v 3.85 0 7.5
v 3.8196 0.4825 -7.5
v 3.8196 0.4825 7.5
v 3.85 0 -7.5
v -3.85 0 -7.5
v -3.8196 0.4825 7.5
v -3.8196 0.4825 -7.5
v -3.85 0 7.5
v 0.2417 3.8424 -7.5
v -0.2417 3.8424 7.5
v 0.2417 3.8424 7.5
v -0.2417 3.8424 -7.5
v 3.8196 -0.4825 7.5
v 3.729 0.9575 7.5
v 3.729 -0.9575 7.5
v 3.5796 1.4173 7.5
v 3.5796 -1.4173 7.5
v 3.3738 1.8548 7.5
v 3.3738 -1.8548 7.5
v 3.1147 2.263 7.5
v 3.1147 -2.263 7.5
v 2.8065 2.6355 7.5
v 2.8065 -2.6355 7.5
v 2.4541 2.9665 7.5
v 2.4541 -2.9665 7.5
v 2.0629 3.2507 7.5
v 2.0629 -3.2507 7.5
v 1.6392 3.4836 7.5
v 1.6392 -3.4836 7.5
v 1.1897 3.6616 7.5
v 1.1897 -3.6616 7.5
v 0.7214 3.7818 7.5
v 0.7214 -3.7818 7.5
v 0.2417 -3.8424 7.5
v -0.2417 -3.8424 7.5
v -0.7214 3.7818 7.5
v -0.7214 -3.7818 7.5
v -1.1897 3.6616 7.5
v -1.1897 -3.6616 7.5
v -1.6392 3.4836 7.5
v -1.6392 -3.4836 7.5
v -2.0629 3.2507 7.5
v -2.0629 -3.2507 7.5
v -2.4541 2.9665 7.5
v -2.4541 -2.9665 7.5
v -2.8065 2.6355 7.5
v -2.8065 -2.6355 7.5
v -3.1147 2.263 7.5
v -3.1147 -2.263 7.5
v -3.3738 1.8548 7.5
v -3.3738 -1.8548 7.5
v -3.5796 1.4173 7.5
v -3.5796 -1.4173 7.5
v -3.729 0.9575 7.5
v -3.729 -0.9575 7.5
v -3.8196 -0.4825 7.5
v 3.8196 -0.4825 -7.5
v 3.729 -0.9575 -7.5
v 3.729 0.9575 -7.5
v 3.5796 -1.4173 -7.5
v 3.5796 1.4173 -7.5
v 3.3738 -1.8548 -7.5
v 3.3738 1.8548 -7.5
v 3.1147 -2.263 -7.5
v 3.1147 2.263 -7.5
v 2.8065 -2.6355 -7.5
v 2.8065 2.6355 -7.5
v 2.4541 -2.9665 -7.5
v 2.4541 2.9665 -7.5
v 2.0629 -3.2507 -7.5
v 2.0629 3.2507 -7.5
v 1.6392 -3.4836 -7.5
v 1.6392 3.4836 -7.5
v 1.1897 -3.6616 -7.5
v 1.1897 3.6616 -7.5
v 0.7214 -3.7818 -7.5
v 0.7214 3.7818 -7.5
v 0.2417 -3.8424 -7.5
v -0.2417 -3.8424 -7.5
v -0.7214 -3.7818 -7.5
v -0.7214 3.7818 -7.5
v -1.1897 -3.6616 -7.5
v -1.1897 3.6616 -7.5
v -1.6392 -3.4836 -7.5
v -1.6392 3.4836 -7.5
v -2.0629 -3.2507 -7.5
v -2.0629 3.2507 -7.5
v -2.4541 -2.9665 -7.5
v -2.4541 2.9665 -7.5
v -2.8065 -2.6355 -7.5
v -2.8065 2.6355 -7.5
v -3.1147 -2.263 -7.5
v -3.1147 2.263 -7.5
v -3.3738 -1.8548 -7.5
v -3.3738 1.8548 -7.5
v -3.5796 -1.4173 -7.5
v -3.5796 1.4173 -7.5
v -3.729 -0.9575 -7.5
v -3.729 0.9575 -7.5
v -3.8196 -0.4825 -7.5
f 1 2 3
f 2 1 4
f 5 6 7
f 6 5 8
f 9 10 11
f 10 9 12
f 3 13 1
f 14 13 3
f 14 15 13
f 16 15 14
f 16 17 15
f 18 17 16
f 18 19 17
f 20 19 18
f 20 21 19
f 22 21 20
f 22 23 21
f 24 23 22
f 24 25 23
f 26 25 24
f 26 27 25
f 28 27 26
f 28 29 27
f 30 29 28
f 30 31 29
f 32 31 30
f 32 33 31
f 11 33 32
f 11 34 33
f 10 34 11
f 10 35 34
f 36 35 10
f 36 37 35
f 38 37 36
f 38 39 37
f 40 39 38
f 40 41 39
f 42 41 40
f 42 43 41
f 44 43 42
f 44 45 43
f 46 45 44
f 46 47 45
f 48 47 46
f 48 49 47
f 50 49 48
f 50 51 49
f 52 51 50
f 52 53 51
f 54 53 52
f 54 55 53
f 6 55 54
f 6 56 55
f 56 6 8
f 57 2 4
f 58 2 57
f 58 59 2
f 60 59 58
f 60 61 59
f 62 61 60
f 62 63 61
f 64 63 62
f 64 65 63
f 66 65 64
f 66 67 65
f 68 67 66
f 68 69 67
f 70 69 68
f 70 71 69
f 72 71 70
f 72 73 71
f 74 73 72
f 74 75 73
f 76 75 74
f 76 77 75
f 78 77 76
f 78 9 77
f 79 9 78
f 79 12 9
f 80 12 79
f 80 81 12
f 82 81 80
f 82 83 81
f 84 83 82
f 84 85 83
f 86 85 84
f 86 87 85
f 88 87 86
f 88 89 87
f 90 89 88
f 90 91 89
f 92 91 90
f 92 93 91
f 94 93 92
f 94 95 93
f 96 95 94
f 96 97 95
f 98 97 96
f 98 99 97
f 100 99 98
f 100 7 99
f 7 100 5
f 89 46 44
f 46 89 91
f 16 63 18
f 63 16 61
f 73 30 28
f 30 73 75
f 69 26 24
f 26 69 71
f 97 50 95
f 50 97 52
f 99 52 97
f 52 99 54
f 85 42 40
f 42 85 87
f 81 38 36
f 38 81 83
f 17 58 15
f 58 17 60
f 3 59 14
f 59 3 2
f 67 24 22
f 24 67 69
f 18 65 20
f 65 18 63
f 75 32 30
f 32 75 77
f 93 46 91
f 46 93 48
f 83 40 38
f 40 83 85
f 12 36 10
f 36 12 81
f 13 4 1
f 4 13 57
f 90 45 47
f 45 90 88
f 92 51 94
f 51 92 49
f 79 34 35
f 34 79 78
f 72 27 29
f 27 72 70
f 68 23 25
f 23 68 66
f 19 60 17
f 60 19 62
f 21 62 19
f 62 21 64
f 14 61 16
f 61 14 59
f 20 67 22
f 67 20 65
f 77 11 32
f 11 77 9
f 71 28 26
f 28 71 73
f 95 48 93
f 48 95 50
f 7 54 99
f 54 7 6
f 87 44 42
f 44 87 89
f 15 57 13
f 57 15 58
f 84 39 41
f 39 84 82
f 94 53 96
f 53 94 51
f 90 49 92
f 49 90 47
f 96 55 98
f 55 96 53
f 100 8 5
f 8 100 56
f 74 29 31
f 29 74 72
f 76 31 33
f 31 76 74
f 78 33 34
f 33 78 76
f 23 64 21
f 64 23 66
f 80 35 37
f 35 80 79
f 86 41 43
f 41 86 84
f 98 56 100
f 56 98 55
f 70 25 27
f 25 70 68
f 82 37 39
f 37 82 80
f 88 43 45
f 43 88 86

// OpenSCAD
$fn = 50;


difference() {
	union() {
		translate(v = [0, 0, -7.5000000000]) {
			cylinder(h = 15, r = 3.8500000000);
		}
	}
	union() {
		translate(v = [0, 0, -100.0000000000]) {
			cylinder(h = 200, r = 0);
		}
	}
}
